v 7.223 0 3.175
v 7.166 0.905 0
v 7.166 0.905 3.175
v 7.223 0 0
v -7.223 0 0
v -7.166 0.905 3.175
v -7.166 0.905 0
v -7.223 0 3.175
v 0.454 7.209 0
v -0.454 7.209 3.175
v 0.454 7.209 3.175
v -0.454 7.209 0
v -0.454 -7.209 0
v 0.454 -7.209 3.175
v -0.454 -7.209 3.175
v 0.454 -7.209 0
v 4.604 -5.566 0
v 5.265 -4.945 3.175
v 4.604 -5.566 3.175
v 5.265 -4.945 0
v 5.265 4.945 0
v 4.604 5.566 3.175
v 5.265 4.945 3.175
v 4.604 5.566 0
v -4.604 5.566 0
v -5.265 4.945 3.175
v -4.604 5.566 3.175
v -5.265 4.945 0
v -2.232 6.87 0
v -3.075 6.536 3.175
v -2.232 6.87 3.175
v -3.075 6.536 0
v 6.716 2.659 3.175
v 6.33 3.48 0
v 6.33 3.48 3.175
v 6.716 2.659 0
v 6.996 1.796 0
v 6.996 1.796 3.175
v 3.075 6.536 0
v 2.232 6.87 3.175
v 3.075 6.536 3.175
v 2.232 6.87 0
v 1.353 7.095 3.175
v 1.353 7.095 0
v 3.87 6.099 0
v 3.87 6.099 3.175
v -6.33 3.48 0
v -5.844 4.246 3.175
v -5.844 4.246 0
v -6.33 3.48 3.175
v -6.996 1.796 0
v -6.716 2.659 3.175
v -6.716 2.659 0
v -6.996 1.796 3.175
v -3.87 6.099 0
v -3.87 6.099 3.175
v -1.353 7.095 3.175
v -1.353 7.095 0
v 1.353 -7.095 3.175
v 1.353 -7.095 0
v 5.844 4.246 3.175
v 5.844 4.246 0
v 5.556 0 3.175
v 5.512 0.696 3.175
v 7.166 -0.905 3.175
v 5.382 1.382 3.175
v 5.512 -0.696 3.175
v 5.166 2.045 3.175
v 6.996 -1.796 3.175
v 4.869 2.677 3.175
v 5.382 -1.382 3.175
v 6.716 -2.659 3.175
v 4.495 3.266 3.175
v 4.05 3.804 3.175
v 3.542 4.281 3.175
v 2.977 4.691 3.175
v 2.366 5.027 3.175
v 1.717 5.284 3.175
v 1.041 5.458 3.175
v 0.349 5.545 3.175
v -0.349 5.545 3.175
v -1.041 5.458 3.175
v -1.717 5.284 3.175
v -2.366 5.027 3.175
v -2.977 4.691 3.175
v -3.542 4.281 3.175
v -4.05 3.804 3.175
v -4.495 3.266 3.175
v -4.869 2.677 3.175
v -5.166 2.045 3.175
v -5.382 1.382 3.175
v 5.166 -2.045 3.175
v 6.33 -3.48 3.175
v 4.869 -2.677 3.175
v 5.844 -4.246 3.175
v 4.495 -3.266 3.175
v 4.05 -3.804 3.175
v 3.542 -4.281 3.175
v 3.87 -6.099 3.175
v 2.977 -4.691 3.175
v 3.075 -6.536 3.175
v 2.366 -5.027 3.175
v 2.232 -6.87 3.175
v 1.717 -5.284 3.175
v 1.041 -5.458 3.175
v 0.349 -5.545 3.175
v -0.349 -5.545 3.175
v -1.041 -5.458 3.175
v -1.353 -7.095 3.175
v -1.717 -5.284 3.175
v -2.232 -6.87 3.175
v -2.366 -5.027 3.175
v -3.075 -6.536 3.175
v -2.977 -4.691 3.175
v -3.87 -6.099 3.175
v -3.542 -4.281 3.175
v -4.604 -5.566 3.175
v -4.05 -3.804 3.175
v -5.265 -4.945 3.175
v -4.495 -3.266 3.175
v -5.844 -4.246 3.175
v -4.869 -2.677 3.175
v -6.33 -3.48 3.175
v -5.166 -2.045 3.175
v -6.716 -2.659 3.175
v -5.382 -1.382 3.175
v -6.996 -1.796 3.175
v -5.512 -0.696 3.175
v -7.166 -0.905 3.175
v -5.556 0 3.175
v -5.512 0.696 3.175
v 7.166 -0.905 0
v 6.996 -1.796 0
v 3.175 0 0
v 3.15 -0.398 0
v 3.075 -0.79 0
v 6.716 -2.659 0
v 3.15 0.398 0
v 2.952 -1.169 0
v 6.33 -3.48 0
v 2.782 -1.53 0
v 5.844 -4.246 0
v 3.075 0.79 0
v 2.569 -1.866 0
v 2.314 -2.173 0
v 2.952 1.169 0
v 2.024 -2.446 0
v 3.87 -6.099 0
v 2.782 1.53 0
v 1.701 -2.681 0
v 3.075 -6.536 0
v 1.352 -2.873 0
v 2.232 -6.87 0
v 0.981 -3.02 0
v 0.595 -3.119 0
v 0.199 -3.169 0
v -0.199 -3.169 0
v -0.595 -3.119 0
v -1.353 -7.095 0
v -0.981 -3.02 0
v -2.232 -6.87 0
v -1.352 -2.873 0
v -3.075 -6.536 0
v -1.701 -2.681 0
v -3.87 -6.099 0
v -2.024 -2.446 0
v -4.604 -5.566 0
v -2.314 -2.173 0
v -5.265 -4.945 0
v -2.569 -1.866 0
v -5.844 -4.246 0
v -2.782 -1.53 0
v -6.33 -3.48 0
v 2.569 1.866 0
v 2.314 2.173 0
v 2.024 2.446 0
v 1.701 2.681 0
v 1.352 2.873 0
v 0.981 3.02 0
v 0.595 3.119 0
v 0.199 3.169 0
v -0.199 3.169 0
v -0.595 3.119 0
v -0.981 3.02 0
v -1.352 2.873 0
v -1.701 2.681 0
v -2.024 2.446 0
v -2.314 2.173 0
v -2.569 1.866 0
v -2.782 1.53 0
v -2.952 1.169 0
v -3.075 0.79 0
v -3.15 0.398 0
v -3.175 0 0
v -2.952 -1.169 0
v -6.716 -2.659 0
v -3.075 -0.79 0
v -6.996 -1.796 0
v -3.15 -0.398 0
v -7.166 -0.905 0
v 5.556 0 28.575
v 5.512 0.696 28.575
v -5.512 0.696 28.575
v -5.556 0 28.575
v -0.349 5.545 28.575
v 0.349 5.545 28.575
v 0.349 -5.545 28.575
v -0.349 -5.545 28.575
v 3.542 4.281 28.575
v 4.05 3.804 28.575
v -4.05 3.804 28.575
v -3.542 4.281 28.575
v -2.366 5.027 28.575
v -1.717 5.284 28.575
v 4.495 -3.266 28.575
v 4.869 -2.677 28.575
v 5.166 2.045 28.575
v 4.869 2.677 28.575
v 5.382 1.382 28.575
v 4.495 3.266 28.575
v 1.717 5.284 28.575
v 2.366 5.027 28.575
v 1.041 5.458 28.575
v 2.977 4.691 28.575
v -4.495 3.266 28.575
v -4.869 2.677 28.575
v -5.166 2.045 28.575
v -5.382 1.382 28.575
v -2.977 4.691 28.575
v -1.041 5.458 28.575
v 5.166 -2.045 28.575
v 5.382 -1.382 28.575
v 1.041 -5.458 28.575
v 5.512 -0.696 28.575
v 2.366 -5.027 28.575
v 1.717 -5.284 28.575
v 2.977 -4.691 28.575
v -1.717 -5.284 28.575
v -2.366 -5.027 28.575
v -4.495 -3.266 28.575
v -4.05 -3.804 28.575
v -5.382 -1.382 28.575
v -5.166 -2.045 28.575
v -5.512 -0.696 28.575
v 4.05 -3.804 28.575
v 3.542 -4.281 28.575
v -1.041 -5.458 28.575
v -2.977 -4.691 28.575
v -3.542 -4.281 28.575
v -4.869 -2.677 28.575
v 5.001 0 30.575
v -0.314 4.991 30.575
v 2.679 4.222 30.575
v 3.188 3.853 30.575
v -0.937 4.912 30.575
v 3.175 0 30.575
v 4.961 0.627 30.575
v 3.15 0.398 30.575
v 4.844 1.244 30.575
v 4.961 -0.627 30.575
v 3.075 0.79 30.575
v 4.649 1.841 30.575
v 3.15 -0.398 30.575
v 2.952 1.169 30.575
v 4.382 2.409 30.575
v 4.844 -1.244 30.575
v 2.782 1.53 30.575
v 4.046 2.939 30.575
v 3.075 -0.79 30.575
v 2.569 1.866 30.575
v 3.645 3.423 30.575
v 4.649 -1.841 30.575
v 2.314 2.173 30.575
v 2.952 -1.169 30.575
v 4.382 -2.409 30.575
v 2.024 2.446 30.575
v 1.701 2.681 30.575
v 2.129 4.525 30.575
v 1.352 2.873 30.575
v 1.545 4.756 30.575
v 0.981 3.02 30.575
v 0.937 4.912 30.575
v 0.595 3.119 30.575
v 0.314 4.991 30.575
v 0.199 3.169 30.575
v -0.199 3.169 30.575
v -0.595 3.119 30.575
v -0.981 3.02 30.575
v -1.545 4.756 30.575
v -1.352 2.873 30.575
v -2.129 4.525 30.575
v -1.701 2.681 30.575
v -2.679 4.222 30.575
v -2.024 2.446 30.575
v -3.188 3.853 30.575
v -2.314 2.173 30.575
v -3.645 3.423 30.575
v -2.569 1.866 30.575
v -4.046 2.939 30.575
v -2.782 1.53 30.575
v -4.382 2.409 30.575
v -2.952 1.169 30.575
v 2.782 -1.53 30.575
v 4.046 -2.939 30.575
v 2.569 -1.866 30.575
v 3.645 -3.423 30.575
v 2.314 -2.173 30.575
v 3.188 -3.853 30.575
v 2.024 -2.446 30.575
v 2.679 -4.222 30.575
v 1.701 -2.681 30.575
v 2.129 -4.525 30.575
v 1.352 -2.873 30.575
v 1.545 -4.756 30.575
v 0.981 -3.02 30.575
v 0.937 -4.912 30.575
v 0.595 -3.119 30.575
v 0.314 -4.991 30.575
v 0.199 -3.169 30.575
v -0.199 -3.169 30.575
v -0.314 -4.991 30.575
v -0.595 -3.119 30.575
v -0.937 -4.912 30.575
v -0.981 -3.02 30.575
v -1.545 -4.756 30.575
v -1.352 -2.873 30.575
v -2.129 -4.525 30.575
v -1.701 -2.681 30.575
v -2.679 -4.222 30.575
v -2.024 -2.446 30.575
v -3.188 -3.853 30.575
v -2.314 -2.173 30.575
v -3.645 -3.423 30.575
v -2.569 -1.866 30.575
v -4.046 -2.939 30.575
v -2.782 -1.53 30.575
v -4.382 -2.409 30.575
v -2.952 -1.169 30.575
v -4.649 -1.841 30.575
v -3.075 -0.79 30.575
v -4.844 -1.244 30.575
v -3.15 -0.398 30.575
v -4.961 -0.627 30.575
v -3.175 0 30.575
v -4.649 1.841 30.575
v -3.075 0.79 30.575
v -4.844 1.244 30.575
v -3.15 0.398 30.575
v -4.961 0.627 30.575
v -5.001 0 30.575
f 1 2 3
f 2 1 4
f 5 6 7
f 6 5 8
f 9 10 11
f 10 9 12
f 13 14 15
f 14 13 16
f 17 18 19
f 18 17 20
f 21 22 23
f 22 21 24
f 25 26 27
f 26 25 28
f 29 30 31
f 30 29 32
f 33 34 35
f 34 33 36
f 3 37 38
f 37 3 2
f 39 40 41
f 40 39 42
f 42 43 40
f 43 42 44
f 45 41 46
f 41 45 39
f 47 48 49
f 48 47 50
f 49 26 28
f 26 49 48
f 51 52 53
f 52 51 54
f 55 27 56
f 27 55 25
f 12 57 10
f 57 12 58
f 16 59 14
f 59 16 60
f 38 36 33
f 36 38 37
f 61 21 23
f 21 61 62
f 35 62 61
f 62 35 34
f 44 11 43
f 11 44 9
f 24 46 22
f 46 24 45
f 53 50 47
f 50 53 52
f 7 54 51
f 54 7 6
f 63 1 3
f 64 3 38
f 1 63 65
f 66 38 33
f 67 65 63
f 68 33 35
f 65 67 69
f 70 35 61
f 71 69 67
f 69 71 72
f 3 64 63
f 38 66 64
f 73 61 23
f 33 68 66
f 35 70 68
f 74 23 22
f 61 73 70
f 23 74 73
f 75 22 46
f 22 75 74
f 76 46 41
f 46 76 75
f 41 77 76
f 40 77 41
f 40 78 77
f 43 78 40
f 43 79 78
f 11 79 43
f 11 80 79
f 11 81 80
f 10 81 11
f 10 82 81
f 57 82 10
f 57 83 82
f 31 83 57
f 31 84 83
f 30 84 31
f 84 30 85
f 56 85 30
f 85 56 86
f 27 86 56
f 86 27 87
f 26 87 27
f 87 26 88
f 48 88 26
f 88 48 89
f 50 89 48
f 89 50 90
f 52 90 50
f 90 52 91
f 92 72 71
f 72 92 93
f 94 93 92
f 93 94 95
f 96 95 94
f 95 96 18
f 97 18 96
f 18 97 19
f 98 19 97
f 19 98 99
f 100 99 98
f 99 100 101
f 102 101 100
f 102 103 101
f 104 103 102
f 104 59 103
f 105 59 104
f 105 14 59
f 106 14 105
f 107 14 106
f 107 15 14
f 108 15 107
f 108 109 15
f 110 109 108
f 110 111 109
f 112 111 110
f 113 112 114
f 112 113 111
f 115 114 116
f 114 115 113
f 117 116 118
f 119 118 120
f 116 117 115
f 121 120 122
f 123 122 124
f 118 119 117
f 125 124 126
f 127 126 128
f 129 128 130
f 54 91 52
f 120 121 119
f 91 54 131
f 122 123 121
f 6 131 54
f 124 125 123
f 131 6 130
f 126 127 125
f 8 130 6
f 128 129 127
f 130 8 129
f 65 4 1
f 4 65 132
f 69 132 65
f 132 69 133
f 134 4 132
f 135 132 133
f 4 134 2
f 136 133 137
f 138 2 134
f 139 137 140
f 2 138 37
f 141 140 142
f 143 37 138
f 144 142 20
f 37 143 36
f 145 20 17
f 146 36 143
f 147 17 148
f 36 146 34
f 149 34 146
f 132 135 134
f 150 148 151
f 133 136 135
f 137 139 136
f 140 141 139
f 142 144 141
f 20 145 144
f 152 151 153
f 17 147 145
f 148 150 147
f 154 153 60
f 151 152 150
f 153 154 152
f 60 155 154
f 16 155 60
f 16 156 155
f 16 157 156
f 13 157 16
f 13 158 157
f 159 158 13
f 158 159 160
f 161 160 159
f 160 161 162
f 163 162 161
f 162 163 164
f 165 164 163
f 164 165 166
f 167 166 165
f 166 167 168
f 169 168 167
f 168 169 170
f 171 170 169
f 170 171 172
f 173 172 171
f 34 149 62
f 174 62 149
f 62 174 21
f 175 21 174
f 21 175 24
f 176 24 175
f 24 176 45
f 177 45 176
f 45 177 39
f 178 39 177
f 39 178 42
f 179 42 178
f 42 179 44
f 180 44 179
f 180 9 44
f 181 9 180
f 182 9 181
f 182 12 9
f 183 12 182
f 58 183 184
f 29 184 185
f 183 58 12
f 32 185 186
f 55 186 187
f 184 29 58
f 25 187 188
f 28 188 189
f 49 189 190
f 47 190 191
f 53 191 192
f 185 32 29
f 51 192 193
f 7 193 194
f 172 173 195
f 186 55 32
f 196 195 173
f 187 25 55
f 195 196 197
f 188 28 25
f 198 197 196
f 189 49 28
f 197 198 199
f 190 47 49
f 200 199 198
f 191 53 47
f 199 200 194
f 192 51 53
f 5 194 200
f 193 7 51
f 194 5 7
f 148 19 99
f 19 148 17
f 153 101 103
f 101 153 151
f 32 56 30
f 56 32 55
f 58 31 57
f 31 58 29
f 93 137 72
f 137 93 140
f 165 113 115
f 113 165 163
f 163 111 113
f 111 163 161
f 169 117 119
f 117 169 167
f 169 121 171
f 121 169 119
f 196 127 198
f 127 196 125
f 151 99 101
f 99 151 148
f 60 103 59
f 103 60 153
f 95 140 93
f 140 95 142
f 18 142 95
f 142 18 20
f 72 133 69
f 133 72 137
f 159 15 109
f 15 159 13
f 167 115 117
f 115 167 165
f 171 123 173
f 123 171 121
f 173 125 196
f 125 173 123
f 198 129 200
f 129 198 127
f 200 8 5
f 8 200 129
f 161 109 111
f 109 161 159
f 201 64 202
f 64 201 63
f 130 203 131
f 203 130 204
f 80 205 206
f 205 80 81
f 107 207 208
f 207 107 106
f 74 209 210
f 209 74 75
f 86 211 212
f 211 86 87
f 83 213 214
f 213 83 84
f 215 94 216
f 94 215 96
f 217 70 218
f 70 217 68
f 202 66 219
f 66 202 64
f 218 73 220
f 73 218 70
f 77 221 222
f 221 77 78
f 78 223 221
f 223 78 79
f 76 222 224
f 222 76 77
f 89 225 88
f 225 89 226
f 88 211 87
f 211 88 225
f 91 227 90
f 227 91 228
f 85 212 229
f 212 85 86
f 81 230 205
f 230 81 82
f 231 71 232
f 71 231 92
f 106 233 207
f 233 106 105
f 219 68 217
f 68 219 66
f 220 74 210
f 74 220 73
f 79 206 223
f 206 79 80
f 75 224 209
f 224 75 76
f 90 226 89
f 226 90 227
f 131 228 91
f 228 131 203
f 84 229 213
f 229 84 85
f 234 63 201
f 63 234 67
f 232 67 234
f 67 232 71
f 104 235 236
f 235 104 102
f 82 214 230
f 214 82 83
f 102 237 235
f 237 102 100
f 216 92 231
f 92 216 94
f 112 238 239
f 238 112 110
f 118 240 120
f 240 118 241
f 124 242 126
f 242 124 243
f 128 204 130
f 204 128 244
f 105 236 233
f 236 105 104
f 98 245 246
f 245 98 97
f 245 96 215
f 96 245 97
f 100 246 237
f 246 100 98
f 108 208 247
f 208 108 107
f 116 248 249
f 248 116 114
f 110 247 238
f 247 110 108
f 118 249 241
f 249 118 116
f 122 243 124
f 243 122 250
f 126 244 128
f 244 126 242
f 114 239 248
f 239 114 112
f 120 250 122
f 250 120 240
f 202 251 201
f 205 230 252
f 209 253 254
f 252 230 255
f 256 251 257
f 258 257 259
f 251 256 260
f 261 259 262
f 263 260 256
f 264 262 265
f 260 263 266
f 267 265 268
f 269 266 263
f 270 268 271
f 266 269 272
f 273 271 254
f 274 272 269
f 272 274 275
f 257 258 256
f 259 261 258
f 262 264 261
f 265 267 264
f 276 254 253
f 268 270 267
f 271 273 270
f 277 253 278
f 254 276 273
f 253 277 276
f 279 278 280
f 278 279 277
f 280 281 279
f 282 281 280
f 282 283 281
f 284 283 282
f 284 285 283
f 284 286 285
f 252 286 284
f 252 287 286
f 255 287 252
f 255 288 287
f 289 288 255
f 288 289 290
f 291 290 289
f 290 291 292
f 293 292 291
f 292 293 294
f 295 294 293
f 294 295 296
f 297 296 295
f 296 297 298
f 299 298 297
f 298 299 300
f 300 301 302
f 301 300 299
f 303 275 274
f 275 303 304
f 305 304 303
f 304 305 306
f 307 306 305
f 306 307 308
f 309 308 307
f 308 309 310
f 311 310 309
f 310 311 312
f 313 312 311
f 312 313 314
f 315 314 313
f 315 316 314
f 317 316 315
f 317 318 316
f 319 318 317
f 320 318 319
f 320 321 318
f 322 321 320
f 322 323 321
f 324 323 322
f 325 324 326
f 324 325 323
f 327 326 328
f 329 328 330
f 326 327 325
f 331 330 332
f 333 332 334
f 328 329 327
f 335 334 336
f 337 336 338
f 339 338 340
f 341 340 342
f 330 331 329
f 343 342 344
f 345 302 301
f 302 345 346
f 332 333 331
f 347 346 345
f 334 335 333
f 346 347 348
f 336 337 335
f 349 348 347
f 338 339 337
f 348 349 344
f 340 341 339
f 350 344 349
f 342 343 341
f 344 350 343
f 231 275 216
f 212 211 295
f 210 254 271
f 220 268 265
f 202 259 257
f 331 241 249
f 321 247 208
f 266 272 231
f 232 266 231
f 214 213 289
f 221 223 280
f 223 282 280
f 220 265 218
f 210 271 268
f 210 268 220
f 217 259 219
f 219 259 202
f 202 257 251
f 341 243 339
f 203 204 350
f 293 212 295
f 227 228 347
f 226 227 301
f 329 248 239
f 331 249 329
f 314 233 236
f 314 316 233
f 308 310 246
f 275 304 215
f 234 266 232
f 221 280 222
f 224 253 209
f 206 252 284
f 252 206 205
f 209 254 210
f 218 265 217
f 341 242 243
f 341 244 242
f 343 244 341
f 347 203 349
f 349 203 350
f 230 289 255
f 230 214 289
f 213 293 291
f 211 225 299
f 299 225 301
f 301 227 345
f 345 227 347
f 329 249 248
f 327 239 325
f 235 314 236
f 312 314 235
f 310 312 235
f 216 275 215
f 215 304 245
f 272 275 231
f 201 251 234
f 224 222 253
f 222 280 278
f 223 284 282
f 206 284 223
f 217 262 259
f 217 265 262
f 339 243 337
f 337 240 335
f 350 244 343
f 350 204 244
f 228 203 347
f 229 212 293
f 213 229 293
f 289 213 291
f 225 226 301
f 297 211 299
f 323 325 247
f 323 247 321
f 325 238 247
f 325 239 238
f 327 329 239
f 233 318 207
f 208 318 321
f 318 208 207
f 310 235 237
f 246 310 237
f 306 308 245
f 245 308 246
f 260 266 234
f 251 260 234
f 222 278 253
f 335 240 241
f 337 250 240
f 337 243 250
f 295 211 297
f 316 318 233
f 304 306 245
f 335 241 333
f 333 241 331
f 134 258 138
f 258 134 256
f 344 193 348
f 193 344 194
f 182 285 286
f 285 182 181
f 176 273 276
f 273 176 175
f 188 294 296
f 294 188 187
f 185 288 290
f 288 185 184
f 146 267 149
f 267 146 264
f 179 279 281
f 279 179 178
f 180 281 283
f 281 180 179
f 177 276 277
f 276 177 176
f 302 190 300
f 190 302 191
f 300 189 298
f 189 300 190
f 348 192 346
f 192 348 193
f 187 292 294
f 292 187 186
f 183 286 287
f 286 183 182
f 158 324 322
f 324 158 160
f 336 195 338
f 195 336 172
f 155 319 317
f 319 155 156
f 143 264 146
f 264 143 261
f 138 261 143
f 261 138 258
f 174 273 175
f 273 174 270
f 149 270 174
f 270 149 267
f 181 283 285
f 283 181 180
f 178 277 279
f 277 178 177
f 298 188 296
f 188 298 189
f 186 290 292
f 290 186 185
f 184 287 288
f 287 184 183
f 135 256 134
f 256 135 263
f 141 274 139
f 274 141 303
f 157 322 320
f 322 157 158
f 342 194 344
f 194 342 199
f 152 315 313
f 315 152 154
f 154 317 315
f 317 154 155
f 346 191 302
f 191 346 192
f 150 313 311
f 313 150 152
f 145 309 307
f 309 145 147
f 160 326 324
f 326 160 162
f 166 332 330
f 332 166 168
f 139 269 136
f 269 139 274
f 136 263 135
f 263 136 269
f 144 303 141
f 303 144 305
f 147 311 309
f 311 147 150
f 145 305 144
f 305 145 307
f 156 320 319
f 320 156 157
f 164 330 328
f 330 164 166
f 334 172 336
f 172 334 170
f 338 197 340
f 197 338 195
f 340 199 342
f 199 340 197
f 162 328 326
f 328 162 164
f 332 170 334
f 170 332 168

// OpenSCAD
// A spacing guide for 6" spaced holes on a square grid.
// The guide also includes measurement for the diagonal.

$fn = 50;
I2MM = 25.4;

thread_dia = 0.3006  * I2MM; // Minor dia of 3/8-20 bolt.
drill_dia = (7/16) * I2MM; // For T-Nuts
hole_dia = (1/4) * I2MM; // For reinforcing threaded rod.
height = 1 * I2MM; 
cap_dia = drill_dia * 1.3; // To grab and pull out
cap_height = 1/8 * I2MM;

module rod() {
    difference() {
        union() {
            cylinder(h=cap_height, d=cap_dia);
            translate([0, 0, cap_height])
                cylinder(h=height, d1=drill_dia, d2=drill_dia);
            translate([0, 0, cap_height + height])
                cylinder(h=2, d1=drill_dia, d2=0.9 * drill_dia);
        }
        cylinder(h=2*height, d1=hole_dia, d2=hole_dia);
    }
}

rod();
